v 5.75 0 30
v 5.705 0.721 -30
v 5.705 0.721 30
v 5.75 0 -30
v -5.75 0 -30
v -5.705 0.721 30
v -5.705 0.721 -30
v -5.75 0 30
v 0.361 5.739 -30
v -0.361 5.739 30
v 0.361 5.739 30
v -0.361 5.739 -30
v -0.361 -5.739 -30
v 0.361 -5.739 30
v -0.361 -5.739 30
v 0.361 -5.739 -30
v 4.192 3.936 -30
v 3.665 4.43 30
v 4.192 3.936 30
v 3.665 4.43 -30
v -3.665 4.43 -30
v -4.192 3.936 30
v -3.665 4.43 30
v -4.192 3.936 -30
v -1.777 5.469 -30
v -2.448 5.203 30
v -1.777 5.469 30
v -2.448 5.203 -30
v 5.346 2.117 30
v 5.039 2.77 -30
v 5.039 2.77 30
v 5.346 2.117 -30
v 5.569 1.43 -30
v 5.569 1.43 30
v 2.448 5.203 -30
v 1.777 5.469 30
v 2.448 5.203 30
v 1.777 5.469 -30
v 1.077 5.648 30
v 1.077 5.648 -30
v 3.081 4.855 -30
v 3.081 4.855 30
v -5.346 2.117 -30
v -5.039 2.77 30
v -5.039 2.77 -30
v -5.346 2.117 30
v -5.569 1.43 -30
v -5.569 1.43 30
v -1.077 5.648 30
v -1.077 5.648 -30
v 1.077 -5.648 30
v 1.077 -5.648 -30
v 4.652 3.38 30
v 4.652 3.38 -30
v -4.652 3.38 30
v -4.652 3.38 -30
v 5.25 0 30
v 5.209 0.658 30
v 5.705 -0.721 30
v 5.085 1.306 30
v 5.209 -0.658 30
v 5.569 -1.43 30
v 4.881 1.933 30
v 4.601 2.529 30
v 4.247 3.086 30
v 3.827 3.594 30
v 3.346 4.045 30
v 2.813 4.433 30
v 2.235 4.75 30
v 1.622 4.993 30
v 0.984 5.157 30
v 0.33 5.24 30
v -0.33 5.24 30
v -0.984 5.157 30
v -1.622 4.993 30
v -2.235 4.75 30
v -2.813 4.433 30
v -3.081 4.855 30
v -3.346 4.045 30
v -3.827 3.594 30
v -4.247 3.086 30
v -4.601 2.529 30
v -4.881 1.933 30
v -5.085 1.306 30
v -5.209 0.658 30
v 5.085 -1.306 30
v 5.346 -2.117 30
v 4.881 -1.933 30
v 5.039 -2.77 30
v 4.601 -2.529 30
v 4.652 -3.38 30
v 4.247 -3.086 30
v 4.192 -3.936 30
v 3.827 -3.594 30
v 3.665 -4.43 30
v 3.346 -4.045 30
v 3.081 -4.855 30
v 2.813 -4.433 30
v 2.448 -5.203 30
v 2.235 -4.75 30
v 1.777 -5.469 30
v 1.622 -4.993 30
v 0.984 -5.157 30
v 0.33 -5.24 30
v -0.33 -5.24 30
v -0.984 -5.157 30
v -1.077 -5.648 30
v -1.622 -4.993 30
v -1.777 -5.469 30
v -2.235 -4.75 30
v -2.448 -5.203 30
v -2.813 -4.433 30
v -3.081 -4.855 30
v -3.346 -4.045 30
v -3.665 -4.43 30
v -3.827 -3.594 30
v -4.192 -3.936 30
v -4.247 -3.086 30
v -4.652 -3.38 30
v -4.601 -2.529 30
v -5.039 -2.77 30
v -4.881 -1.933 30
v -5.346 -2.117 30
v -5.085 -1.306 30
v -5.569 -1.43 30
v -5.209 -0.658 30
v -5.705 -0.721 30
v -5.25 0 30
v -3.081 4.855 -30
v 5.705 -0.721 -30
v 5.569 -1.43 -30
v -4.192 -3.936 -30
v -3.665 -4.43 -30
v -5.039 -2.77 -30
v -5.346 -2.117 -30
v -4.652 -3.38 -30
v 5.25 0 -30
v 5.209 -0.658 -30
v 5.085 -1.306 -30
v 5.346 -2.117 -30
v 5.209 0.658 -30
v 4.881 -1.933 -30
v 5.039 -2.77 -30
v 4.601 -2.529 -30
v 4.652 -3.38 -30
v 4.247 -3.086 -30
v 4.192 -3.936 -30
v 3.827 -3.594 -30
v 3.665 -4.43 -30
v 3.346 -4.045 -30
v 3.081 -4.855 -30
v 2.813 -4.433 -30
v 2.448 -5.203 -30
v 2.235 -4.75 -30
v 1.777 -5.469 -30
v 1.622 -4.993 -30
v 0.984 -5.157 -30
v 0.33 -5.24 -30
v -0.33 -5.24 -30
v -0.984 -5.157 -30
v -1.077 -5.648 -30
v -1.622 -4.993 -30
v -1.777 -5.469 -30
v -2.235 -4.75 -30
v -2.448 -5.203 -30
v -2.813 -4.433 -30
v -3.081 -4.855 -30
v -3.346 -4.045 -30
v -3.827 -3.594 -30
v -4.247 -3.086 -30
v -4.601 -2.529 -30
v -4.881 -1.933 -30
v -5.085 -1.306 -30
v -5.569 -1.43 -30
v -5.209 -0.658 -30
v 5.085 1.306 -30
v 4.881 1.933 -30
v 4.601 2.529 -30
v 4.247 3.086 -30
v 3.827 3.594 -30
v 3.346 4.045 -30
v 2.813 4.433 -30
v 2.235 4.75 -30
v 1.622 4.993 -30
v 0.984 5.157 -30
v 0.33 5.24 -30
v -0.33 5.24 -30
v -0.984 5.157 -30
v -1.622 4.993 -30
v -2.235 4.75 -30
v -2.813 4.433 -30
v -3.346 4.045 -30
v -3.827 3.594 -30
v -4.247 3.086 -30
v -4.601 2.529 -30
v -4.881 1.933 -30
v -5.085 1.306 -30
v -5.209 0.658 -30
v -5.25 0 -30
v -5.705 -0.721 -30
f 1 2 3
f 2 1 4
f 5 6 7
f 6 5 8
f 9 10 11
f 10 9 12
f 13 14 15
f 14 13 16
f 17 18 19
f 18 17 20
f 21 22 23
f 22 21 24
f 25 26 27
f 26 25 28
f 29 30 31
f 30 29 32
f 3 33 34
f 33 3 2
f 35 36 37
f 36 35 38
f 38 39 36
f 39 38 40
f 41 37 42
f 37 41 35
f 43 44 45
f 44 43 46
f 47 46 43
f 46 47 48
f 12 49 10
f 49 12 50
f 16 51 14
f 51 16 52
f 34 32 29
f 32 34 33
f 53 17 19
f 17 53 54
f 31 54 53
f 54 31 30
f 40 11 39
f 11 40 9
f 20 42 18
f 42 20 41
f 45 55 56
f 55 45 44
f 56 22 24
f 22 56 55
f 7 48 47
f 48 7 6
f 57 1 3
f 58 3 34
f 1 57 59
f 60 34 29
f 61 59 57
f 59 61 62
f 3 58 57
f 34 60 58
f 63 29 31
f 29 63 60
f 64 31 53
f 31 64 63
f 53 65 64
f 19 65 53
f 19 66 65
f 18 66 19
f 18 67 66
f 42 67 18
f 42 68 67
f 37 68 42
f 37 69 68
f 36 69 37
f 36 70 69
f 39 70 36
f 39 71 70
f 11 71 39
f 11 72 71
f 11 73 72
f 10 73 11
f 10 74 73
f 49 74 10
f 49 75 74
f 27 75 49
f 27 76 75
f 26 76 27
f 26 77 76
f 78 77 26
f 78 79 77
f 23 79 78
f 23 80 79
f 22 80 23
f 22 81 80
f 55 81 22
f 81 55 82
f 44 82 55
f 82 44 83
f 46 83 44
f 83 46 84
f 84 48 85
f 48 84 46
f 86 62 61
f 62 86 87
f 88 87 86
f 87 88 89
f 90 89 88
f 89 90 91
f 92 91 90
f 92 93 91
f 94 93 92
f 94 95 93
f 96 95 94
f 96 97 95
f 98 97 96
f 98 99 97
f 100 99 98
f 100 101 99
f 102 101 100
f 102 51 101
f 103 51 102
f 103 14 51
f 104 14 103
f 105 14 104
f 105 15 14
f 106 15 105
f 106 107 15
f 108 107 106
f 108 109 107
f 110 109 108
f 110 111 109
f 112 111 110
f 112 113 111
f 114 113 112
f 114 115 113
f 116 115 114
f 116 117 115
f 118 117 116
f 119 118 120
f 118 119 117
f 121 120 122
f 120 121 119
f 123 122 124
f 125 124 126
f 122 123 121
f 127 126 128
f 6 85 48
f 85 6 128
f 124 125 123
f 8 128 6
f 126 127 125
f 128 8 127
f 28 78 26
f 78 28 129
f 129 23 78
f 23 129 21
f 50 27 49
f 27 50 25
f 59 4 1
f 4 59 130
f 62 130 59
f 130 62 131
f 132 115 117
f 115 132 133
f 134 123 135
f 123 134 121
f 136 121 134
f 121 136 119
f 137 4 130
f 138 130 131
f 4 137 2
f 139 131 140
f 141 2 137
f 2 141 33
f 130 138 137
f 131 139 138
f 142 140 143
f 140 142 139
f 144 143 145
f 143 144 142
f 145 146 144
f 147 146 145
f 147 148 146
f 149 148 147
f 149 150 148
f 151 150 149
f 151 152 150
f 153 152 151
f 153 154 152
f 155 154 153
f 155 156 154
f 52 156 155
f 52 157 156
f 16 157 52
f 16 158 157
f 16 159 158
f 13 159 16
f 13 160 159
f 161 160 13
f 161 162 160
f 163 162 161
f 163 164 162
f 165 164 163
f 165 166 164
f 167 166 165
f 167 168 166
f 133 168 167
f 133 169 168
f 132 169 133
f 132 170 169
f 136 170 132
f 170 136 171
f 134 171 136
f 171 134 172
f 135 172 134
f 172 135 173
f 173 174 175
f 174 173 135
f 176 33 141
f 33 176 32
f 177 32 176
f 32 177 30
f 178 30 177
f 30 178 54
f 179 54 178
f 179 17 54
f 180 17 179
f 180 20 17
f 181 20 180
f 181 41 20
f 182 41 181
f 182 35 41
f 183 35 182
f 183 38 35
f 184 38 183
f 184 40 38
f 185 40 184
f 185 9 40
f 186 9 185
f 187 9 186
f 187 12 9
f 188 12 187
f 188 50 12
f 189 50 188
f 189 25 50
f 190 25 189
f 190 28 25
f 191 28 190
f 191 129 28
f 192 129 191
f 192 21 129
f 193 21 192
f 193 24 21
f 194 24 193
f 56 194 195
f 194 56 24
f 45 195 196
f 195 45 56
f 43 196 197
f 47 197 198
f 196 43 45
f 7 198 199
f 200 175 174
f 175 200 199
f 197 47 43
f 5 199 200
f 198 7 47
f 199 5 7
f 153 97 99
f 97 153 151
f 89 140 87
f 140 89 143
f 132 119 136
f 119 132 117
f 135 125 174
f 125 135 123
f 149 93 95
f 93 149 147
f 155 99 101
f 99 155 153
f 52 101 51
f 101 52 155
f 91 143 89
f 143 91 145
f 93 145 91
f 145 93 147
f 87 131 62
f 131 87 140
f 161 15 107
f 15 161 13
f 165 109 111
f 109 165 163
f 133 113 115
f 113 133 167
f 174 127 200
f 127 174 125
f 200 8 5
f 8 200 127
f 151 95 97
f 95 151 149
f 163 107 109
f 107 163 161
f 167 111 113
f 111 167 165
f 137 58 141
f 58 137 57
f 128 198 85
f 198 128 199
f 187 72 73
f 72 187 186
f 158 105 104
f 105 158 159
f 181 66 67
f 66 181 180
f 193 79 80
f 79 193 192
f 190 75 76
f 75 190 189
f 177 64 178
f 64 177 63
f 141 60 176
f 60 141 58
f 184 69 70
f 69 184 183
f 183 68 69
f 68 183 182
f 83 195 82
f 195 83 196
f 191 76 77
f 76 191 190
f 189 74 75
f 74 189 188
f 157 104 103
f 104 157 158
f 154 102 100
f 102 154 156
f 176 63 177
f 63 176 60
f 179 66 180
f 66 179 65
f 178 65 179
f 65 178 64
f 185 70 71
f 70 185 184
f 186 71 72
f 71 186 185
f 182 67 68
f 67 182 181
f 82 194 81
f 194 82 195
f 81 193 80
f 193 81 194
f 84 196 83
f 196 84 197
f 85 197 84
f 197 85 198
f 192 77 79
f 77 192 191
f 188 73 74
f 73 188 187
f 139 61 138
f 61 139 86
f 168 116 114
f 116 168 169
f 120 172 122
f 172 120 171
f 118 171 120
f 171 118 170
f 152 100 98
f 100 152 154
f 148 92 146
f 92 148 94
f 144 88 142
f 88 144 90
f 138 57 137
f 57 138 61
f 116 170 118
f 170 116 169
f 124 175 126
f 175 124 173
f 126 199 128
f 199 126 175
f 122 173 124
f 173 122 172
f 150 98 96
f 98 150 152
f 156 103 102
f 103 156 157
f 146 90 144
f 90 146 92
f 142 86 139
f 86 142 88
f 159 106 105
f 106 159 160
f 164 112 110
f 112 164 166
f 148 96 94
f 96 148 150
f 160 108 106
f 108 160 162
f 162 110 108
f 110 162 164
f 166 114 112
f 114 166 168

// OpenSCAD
$fn = 50;


difference() {
	union() {
		translate(v = [0, 0, -30.0000000000]) {
			cylinder(h = 60, r = 5.7500000000);
		}
	}
	union() {
		translate(v = [0, 0, -100.0000000000]) {
			cylinder(h = 200, r = 5.2500000000);
		}
	}
}
